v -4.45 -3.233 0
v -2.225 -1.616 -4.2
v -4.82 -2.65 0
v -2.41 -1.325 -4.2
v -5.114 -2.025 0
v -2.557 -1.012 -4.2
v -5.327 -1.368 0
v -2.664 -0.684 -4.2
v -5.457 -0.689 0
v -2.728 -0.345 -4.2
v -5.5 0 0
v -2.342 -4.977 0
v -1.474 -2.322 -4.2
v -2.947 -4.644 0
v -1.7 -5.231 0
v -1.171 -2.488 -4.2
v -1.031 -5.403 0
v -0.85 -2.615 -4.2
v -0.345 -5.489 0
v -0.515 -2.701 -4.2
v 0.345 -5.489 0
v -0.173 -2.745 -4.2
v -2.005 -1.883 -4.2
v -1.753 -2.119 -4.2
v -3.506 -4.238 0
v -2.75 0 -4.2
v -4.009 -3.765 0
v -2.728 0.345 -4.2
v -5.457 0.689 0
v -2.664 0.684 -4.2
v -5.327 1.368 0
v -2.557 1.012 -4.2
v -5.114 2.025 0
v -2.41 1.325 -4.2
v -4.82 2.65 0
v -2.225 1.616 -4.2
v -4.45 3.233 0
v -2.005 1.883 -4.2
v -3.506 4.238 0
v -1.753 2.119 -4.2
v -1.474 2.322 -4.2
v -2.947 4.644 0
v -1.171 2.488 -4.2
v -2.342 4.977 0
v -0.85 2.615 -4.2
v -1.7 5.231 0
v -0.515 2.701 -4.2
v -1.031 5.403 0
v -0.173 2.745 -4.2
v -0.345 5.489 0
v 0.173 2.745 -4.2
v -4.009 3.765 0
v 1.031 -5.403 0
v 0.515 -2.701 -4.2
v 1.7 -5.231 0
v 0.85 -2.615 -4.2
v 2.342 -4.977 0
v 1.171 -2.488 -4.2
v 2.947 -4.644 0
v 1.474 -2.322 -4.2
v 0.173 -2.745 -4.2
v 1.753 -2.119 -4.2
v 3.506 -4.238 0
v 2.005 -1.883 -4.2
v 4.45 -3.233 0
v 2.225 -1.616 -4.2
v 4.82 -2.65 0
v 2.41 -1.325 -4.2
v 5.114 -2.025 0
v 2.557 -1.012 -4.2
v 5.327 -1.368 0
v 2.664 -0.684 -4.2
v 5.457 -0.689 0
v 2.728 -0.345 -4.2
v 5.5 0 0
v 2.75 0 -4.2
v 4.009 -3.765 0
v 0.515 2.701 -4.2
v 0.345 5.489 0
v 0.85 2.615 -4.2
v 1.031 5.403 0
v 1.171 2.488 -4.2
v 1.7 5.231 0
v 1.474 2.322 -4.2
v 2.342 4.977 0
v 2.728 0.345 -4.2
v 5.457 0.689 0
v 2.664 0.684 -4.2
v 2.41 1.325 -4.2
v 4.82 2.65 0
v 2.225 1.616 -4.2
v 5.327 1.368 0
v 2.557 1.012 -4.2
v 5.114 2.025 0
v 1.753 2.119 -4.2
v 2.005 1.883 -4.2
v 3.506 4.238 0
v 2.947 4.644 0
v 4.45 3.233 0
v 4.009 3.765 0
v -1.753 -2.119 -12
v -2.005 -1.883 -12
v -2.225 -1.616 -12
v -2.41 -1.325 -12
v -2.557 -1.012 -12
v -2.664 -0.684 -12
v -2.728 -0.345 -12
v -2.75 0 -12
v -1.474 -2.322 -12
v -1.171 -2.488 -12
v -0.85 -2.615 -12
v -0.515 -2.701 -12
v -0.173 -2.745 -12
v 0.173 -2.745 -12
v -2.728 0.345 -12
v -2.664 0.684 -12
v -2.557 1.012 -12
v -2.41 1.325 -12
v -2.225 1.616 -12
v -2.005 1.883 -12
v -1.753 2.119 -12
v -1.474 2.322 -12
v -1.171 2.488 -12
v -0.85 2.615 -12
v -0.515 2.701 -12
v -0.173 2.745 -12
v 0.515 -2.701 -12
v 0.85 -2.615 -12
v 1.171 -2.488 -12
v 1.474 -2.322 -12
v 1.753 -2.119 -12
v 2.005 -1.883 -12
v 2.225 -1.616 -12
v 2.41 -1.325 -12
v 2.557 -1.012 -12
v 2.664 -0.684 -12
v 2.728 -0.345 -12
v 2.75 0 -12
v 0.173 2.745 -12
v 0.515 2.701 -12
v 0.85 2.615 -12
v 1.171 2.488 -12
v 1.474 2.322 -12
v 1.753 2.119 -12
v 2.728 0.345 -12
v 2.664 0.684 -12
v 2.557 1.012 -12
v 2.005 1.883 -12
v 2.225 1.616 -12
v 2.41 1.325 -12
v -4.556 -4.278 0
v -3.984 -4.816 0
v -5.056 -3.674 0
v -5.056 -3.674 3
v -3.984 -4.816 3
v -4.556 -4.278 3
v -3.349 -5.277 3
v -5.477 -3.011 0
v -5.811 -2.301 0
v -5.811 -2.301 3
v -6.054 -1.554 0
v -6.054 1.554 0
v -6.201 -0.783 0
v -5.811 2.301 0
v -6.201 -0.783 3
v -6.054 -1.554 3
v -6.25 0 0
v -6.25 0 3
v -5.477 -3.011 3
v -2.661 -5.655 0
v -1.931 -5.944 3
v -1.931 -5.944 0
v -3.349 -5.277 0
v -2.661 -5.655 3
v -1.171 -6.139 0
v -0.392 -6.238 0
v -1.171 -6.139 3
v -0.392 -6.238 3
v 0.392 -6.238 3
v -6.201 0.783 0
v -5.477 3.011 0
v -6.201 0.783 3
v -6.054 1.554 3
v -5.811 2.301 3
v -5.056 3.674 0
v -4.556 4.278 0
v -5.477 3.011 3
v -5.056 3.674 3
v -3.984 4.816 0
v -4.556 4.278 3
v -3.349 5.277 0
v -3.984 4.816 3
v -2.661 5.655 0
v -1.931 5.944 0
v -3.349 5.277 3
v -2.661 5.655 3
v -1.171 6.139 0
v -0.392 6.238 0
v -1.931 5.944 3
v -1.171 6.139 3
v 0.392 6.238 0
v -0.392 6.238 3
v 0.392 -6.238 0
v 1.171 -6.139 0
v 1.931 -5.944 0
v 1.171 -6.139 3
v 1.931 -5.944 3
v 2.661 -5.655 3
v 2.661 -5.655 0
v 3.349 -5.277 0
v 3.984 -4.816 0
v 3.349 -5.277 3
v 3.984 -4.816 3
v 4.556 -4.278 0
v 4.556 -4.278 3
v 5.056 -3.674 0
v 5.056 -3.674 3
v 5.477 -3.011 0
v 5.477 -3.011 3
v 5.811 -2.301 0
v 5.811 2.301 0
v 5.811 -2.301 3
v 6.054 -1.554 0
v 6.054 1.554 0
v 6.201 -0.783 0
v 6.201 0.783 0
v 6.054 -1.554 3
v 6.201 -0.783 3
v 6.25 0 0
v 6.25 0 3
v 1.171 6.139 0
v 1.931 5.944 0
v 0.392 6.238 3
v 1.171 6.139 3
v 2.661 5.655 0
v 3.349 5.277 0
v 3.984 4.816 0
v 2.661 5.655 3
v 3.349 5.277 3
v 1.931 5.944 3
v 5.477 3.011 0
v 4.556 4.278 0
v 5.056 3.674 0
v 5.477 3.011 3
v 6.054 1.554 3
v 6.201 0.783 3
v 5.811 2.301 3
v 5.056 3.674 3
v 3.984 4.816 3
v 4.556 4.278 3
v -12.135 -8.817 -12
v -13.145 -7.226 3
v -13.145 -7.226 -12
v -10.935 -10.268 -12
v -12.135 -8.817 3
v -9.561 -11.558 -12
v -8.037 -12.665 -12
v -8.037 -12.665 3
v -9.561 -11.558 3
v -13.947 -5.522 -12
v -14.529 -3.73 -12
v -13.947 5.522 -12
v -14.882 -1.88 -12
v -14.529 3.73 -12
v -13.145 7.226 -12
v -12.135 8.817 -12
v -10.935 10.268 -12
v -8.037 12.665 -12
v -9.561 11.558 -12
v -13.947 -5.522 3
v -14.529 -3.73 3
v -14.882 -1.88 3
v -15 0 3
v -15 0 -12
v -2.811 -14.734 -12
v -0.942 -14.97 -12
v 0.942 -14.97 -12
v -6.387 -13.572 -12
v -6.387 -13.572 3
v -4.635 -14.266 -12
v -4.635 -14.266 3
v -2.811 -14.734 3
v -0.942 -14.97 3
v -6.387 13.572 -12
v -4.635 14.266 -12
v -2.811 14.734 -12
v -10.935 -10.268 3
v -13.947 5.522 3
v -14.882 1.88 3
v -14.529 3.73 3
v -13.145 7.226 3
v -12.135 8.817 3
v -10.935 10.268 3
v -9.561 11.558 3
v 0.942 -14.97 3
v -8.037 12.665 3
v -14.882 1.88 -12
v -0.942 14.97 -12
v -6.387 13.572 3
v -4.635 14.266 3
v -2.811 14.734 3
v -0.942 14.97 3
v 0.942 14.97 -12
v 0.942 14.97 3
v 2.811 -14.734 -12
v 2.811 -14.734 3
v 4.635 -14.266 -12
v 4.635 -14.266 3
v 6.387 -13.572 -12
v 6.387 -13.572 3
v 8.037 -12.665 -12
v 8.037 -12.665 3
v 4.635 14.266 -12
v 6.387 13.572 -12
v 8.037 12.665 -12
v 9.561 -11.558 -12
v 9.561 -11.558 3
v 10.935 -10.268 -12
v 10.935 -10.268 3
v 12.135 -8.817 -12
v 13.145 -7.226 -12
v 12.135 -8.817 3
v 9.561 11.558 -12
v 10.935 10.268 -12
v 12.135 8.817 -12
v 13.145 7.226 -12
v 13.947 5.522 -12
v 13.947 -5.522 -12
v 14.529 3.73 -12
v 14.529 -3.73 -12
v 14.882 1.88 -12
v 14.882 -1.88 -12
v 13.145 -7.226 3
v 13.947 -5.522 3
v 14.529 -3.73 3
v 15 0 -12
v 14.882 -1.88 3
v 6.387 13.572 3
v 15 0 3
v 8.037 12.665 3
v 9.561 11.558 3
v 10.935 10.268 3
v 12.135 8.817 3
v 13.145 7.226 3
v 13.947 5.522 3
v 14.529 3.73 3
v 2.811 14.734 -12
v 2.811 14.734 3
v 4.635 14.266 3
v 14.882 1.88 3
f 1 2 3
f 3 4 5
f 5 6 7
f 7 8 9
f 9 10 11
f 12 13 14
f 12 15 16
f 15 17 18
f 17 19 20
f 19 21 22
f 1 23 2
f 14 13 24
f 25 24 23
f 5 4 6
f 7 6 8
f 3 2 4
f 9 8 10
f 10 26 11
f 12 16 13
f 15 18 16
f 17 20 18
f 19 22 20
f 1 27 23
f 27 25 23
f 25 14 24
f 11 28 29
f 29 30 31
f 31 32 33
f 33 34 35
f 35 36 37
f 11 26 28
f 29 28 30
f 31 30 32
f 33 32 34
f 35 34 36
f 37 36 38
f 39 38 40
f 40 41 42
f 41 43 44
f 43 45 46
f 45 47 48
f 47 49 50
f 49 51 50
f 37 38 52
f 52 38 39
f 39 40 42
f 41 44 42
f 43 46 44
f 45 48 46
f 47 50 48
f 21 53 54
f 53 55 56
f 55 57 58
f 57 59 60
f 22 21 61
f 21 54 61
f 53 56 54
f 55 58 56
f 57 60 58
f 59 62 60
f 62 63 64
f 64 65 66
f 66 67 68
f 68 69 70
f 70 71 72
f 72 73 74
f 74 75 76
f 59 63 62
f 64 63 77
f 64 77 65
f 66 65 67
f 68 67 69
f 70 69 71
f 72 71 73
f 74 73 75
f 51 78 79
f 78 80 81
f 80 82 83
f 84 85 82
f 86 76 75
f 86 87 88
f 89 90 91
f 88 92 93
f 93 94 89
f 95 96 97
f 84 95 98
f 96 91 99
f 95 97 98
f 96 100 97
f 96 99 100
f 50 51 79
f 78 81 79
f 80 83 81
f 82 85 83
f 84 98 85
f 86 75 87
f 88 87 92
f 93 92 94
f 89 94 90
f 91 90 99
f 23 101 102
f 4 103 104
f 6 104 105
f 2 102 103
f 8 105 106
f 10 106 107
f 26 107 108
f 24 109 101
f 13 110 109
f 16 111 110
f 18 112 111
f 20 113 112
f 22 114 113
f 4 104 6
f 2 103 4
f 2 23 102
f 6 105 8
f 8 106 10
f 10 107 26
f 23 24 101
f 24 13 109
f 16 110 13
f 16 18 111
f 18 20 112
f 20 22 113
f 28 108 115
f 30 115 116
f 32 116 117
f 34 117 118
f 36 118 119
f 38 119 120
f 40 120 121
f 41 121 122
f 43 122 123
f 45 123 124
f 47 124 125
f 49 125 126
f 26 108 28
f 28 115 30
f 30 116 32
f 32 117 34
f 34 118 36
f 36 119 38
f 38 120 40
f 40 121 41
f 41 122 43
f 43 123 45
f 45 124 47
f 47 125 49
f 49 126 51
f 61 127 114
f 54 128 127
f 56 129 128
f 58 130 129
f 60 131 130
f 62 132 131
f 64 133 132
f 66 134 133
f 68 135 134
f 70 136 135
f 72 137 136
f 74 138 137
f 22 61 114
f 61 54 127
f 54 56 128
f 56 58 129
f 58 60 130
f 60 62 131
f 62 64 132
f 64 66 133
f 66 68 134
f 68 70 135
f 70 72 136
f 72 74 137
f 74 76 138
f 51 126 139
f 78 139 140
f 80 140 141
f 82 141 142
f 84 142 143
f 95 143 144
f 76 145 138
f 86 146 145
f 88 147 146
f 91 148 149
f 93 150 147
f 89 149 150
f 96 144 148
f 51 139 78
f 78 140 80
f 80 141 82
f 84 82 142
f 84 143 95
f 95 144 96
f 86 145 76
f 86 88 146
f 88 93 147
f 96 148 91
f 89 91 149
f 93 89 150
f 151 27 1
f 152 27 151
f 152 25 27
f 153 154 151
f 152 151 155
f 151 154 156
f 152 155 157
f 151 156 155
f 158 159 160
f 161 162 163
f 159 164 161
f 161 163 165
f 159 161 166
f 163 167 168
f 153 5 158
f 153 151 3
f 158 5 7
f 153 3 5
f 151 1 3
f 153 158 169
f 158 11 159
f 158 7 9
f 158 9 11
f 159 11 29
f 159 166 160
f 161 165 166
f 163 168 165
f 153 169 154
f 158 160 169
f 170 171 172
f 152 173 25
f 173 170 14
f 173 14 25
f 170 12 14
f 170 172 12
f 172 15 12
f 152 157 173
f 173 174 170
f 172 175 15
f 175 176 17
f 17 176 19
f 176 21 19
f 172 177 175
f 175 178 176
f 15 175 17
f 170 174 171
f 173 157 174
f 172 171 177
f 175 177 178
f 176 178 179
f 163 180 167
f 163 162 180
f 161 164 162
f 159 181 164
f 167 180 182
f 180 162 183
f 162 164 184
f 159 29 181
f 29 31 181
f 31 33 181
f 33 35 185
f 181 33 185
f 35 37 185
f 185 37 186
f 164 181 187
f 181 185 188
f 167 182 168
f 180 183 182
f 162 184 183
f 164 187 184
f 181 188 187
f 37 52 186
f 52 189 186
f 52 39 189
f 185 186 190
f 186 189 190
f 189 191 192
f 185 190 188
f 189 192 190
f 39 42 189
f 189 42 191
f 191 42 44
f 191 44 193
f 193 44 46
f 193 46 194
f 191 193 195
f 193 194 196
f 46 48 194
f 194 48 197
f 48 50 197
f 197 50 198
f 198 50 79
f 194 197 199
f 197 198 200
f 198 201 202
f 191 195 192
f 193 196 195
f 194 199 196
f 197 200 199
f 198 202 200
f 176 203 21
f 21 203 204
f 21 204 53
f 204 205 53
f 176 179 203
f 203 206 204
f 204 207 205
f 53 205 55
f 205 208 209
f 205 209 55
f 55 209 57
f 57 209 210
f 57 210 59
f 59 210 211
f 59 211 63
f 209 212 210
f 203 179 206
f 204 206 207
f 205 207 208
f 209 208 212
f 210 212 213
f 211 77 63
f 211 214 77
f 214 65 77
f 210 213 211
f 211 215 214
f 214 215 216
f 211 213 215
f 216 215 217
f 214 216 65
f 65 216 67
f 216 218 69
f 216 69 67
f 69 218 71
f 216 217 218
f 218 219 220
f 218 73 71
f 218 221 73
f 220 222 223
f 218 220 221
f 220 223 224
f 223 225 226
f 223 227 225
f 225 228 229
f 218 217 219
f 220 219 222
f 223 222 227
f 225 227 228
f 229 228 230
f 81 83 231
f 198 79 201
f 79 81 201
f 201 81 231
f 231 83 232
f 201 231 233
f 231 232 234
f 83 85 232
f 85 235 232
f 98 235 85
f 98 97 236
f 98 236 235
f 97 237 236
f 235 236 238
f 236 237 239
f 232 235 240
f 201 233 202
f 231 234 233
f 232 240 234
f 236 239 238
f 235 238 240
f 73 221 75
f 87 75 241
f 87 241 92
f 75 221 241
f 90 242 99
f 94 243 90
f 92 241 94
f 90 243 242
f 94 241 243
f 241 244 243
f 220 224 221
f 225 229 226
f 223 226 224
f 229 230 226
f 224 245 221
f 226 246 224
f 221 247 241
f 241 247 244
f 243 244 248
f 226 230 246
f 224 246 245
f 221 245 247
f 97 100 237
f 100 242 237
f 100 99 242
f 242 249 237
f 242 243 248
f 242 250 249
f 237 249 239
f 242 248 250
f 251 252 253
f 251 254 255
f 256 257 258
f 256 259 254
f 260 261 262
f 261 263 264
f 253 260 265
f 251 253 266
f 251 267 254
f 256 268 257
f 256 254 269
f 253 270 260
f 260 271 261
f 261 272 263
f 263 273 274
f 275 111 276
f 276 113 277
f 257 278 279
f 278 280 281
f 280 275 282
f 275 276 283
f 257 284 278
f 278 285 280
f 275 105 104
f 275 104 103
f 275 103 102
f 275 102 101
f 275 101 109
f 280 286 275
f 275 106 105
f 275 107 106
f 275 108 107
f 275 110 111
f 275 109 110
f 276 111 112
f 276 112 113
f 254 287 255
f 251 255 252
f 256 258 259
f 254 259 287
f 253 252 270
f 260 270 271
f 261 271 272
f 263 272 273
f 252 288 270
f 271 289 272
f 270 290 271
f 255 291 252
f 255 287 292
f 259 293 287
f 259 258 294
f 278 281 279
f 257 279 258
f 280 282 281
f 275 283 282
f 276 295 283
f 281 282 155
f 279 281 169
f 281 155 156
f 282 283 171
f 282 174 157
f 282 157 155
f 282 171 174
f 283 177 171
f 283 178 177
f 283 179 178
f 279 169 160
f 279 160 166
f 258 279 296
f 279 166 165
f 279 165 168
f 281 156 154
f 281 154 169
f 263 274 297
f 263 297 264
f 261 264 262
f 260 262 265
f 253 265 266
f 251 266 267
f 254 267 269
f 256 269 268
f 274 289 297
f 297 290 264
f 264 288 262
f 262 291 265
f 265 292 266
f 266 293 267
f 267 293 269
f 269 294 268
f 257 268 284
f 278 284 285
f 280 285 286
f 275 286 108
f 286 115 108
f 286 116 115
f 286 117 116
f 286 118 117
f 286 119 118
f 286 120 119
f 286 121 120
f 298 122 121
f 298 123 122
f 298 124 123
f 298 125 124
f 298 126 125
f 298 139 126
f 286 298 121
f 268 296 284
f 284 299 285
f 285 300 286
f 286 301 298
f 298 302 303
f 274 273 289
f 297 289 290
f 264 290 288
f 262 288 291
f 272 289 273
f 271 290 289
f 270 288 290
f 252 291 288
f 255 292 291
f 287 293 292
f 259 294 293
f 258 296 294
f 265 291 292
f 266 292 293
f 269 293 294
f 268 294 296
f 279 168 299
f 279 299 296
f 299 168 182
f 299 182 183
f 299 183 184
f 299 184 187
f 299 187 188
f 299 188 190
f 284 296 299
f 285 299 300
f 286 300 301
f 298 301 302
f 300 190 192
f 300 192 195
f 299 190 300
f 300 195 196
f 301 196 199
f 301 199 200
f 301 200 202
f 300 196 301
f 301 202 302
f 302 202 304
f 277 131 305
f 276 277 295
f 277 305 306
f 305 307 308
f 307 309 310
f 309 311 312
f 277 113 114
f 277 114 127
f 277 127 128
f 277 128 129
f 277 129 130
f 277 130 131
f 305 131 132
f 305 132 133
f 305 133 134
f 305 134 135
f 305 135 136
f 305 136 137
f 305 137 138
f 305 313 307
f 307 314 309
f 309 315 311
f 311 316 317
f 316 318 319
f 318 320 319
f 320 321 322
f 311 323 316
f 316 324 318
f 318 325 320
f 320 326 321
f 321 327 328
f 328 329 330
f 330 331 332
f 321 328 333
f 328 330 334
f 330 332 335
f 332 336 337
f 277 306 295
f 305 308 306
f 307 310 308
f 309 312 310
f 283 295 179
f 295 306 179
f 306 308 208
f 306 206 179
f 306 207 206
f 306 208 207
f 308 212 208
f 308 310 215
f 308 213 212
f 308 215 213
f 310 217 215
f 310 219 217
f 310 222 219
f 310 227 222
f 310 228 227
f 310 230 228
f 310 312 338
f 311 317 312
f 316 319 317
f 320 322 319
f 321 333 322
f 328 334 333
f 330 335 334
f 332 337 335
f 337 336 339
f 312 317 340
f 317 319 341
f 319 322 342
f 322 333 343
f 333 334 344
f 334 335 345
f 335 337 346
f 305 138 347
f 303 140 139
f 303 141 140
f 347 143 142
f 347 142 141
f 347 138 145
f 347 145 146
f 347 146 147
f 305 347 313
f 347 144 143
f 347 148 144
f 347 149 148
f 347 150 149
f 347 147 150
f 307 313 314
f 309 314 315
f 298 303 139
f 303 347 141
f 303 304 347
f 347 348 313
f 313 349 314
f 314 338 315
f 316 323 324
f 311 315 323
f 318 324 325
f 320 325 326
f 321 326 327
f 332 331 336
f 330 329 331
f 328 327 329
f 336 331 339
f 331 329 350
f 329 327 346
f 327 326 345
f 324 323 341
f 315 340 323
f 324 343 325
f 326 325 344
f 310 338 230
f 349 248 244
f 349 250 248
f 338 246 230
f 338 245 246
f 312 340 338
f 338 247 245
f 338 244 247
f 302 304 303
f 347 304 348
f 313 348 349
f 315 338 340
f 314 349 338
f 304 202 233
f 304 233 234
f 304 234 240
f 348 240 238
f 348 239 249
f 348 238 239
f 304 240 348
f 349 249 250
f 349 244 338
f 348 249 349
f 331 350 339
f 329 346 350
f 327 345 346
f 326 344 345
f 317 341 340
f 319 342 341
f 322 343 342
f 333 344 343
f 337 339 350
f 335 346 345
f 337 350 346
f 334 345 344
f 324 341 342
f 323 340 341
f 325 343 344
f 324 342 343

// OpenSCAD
$fn = 50;


difference() {
	union() {
		translate(v = [0, 0, -12.0000000000]) {
			cylinder(h = 15, r = 15.0000000000);
		}
	}
	union() {
		translate(v = [0, 0, 0]) {
			rotate(a = [0, 0, 0]) {
				difference() {
					union() {
						translate(v = [0, 0, -15.0000000000]) {
							cylinder(h = 15, r = 2.2500000000);
						}
						translate(v = [0, 0, -4.2000000000]) {
							cylinder(h = 4.2000000000, r1 = 2.7500000000, r2 = 5.5000000000);
						}
						translate(v = [0, 0, -15.0000000000]) {
							cylinder(h = 15, r = 2.7500000000);
						}
						translate(v = [0, 0, -15.0000000000]) {
							cylinder(h = 15, r = 2.2500000000);
						}
					}
					union();
				}
			}
		}
		#cylinder(h = 3, r = 6.2500000000);
	}
}
